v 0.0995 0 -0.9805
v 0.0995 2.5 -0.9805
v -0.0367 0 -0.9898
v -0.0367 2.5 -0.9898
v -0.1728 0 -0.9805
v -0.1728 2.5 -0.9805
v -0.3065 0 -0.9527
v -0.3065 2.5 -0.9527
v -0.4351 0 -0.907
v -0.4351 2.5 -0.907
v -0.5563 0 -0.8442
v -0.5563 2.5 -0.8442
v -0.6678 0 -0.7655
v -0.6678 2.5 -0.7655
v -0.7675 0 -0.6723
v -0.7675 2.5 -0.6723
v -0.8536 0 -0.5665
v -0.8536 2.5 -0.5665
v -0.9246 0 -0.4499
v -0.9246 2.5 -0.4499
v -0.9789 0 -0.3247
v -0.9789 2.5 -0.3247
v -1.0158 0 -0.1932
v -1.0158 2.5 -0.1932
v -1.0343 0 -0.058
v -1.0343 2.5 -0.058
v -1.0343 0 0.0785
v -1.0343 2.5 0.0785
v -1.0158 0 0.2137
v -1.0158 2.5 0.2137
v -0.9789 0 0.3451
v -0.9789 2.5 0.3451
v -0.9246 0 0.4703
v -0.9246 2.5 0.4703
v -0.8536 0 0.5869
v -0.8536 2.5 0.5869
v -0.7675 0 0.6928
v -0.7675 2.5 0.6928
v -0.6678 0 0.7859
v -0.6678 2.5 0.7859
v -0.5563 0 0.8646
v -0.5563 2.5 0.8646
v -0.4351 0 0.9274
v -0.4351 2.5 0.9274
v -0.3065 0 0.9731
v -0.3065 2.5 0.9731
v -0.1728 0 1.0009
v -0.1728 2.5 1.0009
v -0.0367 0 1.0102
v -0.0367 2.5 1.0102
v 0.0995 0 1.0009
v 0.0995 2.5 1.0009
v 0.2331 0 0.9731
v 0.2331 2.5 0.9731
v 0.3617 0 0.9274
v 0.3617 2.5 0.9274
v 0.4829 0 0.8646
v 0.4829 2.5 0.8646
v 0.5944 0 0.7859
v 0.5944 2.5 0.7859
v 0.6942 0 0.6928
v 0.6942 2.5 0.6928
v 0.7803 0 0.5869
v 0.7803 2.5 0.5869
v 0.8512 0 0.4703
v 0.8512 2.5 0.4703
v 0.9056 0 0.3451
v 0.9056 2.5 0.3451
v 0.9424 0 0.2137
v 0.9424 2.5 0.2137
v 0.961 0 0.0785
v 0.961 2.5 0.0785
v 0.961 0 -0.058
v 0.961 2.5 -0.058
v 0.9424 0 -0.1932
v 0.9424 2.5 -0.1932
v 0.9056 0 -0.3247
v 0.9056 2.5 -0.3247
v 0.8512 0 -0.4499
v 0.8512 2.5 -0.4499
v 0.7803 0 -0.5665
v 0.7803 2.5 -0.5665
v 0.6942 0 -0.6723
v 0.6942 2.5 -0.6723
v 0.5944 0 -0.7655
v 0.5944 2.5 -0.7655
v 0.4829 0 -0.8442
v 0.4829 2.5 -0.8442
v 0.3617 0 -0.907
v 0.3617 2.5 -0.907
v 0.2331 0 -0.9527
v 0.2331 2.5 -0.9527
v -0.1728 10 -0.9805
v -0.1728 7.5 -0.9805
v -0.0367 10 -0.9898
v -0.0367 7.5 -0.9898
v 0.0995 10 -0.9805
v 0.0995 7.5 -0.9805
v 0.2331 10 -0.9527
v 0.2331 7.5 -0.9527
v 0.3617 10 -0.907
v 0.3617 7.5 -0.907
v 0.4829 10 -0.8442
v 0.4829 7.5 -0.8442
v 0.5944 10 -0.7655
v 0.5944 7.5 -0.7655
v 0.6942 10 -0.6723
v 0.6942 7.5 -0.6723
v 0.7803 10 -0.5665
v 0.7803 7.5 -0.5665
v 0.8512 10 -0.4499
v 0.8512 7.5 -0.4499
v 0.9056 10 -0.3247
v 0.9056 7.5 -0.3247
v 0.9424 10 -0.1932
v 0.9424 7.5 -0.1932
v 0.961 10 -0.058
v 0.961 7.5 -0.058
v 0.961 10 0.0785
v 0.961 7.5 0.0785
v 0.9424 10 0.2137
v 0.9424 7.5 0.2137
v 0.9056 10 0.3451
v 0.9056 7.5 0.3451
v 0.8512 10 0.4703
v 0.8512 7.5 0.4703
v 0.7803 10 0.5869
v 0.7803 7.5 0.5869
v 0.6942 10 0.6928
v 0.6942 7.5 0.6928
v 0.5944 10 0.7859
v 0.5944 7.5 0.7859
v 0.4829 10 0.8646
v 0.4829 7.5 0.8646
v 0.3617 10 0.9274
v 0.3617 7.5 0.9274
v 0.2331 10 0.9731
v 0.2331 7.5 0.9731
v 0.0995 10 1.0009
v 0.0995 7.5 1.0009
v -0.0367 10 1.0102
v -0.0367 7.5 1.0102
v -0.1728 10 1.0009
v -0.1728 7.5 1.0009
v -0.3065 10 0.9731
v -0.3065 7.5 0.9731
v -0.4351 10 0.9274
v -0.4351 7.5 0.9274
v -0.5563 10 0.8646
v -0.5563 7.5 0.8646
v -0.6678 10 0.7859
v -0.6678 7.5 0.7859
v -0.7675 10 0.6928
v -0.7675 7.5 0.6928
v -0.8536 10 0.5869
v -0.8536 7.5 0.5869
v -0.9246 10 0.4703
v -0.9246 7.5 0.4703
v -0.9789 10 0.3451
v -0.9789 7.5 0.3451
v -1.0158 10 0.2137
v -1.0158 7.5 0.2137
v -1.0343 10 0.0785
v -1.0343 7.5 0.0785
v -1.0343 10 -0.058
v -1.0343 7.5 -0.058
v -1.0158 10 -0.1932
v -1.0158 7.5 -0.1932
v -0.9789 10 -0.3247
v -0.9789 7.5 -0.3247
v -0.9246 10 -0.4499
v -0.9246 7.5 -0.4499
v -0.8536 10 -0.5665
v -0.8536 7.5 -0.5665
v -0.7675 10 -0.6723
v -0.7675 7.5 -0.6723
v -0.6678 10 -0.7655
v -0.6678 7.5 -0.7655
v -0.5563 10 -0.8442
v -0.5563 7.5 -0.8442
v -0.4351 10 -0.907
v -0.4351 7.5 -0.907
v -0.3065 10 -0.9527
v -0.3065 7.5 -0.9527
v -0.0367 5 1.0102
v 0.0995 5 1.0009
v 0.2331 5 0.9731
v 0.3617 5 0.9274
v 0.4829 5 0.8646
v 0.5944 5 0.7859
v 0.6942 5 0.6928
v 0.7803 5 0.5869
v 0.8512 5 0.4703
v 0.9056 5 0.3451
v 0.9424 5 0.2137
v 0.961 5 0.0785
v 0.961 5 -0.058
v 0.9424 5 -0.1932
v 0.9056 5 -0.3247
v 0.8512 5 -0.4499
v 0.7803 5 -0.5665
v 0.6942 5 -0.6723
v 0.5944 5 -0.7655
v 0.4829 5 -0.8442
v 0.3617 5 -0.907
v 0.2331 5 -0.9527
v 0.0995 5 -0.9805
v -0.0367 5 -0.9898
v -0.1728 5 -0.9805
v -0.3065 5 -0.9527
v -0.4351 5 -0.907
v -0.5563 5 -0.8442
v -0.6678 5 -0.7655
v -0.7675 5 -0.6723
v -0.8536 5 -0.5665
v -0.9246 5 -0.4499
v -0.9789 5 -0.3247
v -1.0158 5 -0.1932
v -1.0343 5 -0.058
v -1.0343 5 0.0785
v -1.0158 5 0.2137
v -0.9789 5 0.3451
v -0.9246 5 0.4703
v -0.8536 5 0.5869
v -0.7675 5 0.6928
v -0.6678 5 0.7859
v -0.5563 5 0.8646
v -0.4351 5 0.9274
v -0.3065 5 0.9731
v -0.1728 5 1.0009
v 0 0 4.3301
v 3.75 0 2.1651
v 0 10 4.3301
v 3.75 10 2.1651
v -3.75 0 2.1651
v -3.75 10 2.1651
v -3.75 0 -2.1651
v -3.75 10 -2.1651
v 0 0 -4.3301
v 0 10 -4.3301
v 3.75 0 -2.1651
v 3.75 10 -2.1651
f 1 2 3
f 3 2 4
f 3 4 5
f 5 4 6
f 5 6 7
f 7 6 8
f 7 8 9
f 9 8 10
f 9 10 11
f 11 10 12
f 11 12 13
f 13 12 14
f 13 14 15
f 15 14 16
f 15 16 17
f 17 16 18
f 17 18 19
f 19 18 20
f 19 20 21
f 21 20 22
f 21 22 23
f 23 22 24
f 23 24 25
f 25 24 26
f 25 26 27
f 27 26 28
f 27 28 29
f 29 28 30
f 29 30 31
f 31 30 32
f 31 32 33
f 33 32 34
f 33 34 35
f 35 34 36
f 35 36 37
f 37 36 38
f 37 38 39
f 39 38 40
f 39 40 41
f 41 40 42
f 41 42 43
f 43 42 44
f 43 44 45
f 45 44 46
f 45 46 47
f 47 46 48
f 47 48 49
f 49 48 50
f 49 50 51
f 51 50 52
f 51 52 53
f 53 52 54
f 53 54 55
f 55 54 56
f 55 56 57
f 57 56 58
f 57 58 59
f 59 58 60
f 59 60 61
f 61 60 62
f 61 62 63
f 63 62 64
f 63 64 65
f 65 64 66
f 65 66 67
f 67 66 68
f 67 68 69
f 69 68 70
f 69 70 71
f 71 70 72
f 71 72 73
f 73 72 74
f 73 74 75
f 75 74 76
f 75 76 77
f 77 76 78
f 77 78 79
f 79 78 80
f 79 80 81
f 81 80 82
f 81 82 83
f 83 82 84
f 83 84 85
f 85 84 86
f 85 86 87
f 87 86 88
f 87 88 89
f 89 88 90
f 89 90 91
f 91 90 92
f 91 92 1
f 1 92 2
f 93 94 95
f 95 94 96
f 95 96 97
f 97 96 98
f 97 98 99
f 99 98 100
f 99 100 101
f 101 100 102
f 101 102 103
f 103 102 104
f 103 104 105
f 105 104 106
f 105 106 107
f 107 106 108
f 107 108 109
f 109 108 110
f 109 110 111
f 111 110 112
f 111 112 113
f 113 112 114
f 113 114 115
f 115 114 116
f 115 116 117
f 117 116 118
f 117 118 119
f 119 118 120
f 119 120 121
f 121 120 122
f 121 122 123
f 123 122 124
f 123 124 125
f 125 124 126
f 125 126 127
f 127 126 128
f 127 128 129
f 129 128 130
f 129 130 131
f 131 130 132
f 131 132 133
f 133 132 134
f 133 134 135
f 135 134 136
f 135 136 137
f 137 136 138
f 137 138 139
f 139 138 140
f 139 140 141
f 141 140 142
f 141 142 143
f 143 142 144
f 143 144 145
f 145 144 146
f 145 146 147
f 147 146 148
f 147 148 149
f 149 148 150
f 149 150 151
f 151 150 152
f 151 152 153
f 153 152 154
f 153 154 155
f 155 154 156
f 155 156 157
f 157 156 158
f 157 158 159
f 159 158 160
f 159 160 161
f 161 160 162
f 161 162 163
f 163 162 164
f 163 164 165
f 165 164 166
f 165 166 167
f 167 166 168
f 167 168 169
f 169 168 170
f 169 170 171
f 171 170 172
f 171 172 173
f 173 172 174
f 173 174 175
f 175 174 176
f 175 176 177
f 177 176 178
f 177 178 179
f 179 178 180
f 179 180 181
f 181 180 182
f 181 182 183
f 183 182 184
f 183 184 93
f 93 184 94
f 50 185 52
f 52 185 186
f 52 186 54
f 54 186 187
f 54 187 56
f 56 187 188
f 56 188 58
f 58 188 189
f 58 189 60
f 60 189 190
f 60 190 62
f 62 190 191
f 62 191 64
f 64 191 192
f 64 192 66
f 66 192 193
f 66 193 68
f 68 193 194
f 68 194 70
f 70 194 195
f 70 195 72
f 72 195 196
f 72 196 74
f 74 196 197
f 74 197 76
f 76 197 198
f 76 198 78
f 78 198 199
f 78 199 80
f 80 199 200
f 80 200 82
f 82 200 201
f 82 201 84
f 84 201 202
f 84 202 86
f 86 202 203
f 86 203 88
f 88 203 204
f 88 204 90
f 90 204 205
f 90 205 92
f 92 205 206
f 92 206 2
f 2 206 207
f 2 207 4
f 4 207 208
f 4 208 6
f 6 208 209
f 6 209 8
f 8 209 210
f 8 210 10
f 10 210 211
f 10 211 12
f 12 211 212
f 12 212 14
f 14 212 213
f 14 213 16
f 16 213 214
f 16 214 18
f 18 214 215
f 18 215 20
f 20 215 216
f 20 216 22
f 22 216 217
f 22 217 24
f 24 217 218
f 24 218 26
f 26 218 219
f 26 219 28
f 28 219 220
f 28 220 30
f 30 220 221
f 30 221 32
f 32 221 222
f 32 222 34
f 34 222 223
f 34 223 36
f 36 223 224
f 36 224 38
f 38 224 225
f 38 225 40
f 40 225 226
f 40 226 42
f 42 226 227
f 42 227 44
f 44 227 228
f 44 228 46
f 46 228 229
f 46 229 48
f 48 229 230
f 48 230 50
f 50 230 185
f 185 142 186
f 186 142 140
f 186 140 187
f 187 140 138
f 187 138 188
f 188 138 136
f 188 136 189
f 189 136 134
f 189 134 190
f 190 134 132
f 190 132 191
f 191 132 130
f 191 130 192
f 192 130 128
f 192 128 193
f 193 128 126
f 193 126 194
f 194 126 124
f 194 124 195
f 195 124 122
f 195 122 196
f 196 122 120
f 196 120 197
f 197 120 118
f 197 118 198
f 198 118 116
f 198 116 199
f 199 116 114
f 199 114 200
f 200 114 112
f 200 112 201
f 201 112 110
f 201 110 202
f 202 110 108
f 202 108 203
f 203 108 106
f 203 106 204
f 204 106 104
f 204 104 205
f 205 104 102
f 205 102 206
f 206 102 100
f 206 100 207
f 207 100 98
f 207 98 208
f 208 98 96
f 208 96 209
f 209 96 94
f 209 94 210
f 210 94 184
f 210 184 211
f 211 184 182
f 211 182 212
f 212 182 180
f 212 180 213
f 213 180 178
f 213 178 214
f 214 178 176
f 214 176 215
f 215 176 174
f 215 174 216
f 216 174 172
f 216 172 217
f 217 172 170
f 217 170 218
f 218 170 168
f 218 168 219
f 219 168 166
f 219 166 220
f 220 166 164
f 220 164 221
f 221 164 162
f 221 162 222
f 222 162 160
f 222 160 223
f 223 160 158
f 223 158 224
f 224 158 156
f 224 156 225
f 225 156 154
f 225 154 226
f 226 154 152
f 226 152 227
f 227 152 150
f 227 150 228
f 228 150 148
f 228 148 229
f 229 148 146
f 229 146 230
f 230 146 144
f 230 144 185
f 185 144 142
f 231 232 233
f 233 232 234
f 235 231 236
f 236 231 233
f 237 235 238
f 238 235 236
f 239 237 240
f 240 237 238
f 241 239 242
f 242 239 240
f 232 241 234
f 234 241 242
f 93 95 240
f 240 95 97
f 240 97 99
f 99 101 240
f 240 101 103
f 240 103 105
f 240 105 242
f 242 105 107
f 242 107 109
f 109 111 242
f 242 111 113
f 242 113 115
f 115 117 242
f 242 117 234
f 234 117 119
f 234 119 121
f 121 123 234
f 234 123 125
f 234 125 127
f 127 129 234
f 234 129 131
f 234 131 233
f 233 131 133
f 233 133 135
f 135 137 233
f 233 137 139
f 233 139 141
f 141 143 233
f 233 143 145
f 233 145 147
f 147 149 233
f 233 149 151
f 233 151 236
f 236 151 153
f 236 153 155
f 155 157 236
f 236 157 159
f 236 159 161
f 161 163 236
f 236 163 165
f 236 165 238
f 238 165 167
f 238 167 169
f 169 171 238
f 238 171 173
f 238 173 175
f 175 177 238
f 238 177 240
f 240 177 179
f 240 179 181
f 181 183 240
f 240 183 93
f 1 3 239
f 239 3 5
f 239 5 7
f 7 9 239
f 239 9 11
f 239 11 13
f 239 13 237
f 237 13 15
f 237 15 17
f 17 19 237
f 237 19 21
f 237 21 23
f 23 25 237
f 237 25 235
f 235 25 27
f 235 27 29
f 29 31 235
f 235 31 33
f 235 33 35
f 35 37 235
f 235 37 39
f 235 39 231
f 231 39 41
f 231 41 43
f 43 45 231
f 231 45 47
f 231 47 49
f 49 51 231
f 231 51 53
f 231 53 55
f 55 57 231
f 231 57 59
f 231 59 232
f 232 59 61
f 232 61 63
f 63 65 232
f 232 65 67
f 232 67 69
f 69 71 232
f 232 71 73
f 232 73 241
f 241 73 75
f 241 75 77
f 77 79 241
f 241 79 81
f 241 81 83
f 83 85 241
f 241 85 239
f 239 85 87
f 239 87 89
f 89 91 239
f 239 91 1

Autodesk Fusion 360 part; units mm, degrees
sketch "Sketch1" plane through (0, 0, 0) normal (0, 1, 0) x (1, 0, 0)
  line L0 (3.75, 2.1651) -> (0, 4.3301)
  line L1 (0, 4.3301) -> (-3.75, 2.1651)
  line L2 (-3.75, 2.1651) -> (-3.75, -2.1651)
  line L3 (-3.75, -2.1651) -> (0, -4.3301)
  line L4 (0, -4.3301) -> (3.75, -2.1651)
  line L5 (3.75, -2.1651) -> (3.75, 2.1651)
  dimension "d4" = 3.75
extrude "Extrude1" add sketch "Sketch1" along normal blind 10
hole "Hole1" at (-0.0367, 0, 0.0102) direction (0, 1, 0) diameter 2 depth 10 tip angle 180
